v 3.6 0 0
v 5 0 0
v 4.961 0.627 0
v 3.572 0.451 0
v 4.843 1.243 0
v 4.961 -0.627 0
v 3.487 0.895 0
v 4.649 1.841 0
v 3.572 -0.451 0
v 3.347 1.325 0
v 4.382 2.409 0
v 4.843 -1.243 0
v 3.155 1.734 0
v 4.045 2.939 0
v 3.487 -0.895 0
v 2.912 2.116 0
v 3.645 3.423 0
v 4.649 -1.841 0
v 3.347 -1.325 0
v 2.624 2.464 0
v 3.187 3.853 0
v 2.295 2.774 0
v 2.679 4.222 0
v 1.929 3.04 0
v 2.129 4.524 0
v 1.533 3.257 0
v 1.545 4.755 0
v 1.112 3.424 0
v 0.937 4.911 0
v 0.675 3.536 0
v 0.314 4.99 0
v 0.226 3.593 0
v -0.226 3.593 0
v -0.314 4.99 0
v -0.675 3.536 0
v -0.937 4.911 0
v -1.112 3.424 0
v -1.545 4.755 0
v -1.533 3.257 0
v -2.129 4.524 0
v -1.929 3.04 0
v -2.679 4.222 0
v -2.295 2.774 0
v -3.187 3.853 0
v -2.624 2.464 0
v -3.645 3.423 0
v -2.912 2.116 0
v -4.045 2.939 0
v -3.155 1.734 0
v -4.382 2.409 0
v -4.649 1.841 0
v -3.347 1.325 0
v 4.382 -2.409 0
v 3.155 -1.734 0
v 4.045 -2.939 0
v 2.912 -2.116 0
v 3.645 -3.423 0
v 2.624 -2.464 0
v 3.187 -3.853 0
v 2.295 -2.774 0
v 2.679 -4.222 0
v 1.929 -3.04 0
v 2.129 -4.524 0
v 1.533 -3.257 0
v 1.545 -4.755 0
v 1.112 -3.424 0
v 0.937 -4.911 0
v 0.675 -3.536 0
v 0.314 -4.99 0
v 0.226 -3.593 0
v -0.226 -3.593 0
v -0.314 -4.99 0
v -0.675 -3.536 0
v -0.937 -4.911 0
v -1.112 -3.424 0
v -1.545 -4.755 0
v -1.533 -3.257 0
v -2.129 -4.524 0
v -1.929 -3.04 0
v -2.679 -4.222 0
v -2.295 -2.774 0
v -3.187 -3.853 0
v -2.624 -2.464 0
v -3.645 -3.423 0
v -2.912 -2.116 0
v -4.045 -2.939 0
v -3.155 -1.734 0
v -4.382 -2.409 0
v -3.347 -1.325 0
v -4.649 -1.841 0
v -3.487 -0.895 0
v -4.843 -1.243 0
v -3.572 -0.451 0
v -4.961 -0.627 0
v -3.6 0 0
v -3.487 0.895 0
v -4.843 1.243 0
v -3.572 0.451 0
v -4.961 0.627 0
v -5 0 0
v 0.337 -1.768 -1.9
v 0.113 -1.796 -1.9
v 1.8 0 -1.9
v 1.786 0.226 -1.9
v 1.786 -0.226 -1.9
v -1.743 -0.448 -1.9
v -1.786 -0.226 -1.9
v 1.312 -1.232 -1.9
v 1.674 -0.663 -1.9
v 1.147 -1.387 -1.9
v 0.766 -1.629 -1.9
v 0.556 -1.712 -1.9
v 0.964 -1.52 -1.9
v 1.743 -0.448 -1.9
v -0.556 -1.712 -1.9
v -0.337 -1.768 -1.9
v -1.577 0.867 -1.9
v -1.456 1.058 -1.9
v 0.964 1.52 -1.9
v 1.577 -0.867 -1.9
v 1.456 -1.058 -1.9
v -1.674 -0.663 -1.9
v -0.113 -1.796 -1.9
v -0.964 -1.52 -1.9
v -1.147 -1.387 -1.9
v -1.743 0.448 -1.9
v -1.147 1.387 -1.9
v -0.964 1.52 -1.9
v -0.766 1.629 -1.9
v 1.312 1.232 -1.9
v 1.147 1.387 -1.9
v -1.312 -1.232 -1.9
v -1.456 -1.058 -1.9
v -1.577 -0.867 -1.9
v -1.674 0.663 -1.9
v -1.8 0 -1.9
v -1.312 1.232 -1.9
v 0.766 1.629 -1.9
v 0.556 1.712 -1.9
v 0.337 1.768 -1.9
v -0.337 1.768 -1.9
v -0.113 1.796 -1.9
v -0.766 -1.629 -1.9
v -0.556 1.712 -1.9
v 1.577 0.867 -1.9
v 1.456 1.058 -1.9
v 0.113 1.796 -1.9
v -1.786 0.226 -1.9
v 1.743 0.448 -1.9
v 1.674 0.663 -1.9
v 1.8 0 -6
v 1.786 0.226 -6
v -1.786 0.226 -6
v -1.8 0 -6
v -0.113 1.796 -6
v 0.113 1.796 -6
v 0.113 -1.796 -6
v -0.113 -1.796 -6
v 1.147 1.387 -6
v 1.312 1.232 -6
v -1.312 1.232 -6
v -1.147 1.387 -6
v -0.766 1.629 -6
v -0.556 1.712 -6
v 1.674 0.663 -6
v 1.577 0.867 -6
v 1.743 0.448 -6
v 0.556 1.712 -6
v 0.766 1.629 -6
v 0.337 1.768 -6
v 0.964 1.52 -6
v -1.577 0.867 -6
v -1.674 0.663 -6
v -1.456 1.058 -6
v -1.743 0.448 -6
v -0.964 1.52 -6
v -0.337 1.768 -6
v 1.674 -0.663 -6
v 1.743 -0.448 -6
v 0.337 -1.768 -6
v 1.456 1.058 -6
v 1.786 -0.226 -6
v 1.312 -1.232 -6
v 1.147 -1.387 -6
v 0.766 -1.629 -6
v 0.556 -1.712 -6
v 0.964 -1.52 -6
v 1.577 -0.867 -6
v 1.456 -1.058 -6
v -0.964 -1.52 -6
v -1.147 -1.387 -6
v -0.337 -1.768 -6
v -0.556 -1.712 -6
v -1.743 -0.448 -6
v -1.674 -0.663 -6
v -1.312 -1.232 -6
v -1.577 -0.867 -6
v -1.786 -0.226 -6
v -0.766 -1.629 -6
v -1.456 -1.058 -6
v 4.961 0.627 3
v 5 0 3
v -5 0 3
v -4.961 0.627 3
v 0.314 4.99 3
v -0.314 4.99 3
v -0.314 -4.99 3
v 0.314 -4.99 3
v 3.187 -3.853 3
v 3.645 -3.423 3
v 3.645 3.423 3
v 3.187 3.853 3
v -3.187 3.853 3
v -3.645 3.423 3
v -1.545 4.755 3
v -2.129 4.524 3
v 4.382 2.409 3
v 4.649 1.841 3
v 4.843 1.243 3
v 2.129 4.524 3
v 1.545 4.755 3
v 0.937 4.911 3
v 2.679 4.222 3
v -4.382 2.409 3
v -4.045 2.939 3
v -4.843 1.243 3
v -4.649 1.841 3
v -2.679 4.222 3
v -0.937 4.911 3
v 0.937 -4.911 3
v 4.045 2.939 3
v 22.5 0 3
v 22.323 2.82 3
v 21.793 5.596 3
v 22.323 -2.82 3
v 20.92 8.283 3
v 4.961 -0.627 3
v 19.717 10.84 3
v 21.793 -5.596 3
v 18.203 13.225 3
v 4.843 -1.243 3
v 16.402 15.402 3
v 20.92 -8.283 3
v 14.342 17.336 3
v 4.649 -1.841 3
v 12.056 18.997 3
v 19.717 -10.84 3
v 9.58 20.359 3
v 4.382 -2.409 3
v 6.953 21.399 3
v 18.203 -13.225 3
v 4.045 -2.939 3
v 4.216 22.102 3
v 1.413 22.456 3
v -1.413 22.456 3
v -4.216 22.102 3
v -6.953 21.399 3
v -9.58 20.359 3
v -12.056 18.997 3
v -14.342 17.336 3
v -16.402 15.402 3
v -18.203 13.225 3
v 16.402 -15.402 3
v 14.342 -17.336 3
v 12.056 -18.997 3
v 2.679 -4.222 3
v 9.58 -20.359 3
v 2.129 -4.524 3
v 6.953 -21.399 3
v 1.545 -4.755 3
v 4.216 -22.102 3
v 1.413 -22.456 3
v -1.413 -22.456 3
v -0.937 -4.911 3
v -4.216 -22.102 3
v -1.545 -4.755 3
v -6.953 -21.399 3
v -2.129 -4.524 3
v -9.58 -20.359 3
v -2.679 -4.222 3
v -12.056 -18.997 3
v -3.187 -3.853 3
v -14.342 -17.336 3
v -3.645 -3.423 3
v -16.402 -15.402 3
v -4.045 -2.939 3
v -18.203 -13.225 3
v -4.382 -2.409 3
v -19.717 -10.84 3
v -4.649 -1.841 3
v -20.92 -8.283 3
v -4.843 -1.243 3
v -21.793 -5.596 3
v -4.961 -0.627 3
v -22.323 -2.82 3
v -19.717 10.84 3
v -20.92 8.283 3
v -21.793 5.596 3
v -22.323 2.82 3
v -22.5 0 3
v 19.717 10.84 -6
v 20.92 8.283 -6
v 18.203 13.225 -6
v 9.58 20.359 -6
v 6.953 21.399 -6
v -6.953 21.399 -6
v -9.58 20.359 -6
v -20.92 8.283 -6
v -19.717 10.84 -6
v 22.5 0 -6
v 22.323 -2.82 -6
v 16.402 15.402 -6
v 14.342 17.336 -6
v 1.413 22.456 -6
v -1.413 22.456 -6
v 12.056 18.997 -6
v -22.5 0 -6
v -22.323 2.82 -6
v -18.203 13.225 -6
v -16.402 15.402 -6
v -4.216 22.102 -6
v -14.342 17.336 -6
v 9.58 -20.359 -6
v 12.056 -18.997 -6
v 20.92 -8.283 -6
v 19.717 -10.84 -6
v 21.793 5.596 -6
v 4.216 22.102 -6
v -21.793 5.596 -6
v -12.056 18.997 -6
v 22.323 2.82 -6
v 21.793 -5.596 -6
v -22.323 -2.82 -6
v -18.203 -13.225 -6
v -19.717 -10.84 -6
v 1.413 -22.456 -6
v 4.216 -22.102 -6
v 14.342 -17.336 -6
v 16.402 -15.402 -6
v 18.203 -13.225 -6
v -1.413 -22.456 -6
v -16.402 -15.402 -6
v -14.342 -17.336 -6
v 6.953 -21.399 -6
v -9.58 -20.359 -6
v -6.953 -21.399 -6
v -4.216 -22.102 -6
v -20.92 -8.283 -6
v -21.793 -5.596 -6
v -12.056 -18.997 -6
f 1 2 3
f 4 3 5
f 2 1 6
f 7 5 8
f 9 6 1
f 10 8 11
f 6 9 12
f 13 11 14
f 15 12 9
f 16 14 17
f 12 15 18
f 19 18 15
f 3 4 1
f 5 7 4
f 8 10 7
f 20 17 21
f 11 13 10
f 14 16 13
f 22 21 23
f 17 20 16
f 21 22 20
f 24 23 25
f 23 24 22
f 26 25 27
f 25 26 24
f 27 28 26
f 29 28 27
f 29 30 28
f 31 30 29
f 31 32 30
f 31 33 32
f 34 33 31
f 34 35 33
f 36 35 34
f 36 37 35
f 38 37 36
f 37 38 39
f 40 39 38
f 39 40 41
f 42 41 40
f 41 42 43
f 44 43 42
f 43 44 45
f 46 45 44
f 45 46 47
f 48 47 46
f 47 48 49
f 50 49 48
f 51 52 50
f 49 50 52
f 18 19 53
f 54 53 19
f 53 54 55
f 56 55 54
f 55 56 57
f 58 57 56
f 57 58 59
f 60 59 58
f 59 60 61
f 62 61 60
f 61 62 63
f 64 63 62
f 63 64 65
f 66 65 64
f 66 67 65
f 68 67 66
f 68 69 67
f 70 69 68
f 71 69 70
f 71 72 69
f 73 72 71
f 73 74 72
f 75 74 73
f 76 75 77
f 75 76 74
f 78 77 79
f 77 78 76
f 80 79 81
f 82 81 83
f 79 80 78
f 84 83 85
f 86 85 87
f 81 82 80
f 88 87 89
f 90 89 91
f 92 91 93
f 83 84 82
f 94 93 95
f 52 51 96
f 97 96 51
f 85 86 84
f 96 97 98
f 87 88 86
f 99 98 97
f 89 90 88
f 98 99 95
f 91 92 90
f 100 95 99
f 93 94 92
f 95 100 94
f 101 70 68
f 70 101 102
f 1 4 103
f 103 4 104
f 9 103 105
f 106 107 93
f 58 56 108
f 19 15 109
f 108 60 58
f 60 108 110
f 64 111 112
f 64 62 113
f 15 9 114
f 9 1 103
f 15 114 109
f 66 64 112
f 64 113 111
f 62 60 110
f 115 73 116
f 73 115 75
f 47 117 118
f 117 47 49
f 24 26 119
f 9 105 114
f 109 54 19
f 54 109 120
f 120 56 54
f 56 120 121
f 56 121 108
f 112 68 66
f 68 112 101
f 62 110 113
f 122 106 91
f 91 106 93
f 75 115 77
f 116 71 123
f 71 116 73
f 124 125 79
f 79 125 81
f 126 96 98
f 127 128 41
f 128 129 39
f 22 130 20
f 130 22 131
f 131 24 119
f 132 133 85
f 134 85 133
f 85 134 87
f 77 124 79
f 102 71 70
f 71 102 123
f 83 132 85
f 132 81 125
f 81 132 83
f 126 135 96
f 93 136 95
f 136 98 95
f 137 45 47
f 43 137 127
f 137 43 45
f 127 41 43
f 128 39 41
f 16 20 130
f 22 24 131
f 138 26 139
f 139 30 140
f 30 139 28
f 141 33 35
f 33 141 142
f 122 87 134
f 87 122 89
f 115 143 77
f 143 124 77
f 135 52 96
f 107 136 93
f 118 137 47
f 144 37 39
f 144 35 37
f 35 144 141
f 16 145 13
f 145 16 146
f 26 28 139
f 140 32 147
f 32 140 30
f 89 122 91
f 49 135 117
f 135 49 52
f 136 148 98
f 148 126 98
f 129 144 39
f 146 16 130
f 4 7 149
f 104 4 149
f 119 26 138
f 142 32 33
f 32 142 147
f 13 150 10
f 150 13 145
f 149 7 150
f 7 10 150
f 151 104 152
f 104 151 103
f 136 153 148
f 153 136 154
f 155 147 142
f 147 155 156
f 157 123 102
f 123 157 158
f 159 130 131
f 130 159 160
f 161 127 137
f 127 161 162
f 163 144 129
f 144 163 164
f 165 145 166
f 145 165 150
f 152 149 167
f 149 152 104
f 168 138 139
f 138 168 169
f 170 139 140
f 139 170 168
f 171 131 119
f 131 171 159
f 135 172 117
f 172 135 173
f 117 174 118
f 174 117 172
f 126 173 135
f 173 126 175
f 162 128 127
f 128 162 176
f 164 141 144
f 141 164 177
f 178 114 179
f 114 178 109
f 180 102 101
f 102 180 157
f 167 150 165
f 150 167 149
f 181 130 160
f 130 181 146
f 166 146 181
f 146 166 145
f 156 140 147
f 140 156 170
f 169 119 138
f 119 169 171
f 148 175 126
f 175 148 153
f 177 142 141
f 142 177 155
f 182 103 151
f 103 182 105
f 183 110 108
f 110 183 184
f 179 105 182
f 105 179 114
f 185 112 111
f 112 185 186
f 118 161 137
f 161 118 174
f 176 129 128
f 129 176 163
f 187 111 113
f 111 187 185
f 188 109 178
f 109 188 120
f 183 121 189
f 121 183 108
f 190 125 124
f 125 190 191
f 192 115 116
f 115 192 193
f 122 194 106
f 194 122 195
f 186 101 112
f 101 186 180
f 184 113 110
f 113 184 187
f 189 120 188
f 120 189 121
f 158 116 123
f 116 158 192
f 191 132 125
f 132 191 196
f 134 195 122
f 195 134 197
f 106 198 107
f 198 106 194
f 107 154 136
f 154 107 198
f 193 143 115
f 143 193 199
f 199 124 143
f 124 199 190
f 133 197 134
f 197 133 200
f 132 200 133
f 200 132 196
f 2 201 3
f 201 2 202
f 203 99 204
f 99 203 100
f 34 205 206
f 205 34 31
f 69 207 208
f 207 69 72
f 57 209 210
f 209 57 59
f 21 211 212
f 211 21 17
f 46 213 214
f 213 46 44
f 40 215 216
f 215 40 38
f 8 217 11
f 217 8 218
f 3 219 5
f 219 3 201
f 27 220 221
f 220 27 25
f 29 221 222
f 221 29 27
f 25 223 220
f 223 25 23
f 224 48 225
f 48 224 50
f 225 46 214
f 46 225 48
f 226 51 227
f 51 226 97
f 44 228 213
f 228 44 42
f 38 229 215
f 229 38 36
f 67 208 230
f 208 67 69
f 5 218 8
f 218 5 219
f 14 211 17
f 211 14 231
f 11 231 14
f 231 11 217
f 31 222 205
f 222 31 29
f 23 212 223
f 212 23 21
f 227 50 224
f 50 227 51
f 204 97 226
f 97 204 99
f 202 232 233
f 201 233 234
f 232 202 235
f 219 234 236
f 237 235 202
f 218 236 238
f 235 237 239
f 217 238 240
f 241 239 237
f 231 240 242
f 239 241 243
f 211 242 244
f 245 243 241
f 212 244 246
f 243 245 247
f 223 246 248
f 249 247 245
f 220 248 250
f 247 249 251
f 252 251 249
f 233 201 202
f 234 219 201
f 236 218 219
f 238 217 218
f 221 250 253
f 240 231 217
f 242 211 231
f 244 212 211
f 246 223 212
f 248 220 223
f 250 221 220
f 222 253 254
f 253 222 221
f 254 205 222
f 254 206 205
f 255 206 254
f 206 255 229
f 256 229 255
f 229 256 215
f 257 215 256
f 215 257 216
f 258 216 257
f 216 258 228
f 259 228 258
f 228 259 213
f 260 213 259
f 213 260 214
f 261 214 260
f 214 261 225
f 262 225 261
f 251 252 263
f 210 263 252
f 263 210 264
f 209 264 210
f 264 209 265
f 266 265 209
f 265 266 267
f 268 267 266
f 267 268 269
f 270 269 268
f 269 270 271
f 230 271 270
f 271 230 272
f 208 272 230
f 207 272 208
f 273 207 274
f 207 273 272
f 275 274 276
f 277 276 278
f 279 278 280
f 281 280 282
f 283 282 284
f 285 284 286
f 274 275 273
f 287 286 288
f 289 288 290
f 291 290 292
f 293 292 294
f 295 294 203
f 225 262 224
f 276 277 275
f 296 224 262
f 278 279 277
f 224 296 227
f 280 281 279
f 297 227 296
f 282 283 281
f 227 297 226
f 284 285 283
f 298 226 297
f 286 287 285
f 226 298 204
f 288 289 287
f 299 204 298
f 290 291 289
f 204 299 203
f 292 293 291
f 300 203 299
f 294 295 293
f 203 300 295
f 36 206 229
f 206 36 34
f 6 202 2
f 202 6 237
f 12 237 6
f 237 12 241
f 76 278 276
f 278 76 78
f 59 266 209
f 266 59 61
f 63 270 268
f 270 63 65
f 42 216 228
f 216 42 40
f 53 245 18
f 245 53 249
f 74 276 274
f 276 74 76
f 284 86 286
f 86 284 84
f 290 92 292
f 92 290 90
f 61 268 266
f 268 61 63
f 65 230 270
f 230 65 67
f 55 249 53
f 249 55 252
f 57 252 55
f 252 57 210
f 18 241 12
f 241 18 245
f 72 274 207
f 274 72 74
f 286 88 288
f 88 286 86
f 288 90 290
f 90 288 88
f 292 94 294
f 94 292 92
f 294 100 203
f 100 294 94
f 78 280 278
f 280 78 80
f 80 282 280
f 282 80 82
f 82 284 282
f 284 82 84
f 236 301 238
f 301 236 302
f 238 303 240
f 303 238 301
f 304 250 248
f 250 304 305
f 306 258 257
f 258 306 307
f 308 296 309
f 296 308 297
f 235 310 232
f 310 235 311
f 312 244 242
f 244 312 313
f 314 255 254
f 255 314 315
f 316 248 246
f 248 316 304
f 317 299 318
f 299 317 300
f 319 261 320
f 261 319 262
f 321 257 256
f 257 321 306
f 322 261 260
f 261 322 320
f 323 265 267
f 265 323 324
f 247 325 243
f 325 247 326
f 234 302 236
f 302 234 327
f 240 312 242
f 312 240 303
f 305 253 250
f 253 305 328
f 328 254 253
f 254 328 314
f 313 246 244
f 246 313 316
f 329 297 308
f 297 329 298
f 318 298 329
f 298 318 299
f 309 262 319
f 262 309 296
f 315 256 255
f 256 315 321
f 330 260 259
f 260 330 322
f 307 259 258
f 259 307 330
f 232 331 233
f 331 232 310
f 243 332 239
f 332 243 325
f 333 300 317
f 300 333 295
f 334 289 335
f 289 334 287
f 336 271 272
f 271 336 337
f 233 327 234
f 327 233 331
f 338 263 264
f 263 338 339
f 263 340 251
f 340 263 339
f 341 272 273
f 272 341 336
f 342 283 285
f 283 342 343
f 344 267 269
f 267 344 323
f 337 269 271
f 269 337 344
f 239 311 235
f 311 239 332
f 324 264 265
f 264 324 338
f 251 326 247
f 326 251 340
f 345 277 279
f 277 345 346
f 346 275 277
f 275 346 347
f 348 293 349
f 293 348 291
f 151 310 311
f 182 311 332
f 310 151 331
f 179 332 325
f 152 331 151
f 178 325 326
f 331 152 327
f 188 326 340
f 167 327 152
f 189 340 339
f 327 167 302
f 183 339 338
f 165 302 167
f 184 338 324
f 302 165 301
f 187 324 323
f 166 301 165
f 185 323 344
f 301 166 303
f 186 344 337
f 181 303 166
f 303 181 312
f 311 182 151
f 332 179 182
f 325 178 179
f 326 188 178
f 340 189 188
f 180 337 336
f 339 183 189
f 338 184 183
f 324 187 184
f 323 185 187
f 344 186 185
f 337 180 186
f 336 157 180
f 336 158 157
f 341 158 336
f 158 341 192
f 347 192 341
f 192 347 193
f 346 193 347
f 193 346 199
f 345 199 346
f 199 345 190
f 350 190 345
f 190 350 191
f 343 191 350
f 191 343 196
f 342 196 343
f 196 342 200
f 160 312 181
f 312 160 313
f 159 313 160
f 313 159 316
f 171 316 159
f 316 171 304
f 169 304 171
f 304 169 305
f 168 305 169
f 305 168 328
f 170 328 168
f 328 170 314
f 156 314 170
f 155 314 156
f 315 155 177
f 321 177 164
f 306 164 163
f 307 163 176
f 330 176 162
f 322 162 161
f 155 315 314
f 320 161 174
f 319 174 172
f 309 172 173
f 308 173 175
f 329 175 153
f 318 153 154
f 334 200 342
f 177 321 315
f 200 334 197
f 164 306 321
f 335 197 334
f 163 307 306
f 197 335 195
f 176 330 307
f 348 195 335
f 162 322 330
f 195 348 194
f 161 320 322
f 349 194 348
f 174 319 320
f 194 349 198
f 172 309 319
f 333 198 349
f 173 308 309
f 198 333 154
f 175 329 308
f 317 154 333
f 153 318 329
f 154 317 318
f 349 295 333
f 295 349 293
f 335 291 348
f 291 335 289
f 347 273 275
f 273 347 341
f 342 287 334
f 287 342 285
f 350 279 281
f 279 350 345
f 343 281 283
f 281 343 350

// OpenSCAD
$fn = 50;


difference() {
	union() {
		translate(v = [0, 0, -6.0000000000]) {
			cylinder(h = 9, r = 22.5000000000);
		}
	}
	union() {
		translate(v = [0, 0, 0]) {
			rotate(a = [0, 0, 0]) {
				difference() {
					union() {
						translate(v = [0, 0, -9.0000000000]) {
							cylinder(h = 9, r = 1.5000000000);
						}
						translate(v = [0, 0, -1.9000000000]) {
							cylinder(h = 1.9000000000, r1 = 1.8000000000, r2 = 3.6000000000);
						}
						translate(v = [0, 0, -9.0000000000]) {
							cylinder(h = 9, r = 1.8000000000);
						}
						translate(v = [0, 0, -9.0000000000]) {
							cylinder(h = 9, r = 1.5000000000);
						}
					}
					union();
				}
			}
		}
		#cylinder(h = 3, r = 5.0000000000);
	}
}
